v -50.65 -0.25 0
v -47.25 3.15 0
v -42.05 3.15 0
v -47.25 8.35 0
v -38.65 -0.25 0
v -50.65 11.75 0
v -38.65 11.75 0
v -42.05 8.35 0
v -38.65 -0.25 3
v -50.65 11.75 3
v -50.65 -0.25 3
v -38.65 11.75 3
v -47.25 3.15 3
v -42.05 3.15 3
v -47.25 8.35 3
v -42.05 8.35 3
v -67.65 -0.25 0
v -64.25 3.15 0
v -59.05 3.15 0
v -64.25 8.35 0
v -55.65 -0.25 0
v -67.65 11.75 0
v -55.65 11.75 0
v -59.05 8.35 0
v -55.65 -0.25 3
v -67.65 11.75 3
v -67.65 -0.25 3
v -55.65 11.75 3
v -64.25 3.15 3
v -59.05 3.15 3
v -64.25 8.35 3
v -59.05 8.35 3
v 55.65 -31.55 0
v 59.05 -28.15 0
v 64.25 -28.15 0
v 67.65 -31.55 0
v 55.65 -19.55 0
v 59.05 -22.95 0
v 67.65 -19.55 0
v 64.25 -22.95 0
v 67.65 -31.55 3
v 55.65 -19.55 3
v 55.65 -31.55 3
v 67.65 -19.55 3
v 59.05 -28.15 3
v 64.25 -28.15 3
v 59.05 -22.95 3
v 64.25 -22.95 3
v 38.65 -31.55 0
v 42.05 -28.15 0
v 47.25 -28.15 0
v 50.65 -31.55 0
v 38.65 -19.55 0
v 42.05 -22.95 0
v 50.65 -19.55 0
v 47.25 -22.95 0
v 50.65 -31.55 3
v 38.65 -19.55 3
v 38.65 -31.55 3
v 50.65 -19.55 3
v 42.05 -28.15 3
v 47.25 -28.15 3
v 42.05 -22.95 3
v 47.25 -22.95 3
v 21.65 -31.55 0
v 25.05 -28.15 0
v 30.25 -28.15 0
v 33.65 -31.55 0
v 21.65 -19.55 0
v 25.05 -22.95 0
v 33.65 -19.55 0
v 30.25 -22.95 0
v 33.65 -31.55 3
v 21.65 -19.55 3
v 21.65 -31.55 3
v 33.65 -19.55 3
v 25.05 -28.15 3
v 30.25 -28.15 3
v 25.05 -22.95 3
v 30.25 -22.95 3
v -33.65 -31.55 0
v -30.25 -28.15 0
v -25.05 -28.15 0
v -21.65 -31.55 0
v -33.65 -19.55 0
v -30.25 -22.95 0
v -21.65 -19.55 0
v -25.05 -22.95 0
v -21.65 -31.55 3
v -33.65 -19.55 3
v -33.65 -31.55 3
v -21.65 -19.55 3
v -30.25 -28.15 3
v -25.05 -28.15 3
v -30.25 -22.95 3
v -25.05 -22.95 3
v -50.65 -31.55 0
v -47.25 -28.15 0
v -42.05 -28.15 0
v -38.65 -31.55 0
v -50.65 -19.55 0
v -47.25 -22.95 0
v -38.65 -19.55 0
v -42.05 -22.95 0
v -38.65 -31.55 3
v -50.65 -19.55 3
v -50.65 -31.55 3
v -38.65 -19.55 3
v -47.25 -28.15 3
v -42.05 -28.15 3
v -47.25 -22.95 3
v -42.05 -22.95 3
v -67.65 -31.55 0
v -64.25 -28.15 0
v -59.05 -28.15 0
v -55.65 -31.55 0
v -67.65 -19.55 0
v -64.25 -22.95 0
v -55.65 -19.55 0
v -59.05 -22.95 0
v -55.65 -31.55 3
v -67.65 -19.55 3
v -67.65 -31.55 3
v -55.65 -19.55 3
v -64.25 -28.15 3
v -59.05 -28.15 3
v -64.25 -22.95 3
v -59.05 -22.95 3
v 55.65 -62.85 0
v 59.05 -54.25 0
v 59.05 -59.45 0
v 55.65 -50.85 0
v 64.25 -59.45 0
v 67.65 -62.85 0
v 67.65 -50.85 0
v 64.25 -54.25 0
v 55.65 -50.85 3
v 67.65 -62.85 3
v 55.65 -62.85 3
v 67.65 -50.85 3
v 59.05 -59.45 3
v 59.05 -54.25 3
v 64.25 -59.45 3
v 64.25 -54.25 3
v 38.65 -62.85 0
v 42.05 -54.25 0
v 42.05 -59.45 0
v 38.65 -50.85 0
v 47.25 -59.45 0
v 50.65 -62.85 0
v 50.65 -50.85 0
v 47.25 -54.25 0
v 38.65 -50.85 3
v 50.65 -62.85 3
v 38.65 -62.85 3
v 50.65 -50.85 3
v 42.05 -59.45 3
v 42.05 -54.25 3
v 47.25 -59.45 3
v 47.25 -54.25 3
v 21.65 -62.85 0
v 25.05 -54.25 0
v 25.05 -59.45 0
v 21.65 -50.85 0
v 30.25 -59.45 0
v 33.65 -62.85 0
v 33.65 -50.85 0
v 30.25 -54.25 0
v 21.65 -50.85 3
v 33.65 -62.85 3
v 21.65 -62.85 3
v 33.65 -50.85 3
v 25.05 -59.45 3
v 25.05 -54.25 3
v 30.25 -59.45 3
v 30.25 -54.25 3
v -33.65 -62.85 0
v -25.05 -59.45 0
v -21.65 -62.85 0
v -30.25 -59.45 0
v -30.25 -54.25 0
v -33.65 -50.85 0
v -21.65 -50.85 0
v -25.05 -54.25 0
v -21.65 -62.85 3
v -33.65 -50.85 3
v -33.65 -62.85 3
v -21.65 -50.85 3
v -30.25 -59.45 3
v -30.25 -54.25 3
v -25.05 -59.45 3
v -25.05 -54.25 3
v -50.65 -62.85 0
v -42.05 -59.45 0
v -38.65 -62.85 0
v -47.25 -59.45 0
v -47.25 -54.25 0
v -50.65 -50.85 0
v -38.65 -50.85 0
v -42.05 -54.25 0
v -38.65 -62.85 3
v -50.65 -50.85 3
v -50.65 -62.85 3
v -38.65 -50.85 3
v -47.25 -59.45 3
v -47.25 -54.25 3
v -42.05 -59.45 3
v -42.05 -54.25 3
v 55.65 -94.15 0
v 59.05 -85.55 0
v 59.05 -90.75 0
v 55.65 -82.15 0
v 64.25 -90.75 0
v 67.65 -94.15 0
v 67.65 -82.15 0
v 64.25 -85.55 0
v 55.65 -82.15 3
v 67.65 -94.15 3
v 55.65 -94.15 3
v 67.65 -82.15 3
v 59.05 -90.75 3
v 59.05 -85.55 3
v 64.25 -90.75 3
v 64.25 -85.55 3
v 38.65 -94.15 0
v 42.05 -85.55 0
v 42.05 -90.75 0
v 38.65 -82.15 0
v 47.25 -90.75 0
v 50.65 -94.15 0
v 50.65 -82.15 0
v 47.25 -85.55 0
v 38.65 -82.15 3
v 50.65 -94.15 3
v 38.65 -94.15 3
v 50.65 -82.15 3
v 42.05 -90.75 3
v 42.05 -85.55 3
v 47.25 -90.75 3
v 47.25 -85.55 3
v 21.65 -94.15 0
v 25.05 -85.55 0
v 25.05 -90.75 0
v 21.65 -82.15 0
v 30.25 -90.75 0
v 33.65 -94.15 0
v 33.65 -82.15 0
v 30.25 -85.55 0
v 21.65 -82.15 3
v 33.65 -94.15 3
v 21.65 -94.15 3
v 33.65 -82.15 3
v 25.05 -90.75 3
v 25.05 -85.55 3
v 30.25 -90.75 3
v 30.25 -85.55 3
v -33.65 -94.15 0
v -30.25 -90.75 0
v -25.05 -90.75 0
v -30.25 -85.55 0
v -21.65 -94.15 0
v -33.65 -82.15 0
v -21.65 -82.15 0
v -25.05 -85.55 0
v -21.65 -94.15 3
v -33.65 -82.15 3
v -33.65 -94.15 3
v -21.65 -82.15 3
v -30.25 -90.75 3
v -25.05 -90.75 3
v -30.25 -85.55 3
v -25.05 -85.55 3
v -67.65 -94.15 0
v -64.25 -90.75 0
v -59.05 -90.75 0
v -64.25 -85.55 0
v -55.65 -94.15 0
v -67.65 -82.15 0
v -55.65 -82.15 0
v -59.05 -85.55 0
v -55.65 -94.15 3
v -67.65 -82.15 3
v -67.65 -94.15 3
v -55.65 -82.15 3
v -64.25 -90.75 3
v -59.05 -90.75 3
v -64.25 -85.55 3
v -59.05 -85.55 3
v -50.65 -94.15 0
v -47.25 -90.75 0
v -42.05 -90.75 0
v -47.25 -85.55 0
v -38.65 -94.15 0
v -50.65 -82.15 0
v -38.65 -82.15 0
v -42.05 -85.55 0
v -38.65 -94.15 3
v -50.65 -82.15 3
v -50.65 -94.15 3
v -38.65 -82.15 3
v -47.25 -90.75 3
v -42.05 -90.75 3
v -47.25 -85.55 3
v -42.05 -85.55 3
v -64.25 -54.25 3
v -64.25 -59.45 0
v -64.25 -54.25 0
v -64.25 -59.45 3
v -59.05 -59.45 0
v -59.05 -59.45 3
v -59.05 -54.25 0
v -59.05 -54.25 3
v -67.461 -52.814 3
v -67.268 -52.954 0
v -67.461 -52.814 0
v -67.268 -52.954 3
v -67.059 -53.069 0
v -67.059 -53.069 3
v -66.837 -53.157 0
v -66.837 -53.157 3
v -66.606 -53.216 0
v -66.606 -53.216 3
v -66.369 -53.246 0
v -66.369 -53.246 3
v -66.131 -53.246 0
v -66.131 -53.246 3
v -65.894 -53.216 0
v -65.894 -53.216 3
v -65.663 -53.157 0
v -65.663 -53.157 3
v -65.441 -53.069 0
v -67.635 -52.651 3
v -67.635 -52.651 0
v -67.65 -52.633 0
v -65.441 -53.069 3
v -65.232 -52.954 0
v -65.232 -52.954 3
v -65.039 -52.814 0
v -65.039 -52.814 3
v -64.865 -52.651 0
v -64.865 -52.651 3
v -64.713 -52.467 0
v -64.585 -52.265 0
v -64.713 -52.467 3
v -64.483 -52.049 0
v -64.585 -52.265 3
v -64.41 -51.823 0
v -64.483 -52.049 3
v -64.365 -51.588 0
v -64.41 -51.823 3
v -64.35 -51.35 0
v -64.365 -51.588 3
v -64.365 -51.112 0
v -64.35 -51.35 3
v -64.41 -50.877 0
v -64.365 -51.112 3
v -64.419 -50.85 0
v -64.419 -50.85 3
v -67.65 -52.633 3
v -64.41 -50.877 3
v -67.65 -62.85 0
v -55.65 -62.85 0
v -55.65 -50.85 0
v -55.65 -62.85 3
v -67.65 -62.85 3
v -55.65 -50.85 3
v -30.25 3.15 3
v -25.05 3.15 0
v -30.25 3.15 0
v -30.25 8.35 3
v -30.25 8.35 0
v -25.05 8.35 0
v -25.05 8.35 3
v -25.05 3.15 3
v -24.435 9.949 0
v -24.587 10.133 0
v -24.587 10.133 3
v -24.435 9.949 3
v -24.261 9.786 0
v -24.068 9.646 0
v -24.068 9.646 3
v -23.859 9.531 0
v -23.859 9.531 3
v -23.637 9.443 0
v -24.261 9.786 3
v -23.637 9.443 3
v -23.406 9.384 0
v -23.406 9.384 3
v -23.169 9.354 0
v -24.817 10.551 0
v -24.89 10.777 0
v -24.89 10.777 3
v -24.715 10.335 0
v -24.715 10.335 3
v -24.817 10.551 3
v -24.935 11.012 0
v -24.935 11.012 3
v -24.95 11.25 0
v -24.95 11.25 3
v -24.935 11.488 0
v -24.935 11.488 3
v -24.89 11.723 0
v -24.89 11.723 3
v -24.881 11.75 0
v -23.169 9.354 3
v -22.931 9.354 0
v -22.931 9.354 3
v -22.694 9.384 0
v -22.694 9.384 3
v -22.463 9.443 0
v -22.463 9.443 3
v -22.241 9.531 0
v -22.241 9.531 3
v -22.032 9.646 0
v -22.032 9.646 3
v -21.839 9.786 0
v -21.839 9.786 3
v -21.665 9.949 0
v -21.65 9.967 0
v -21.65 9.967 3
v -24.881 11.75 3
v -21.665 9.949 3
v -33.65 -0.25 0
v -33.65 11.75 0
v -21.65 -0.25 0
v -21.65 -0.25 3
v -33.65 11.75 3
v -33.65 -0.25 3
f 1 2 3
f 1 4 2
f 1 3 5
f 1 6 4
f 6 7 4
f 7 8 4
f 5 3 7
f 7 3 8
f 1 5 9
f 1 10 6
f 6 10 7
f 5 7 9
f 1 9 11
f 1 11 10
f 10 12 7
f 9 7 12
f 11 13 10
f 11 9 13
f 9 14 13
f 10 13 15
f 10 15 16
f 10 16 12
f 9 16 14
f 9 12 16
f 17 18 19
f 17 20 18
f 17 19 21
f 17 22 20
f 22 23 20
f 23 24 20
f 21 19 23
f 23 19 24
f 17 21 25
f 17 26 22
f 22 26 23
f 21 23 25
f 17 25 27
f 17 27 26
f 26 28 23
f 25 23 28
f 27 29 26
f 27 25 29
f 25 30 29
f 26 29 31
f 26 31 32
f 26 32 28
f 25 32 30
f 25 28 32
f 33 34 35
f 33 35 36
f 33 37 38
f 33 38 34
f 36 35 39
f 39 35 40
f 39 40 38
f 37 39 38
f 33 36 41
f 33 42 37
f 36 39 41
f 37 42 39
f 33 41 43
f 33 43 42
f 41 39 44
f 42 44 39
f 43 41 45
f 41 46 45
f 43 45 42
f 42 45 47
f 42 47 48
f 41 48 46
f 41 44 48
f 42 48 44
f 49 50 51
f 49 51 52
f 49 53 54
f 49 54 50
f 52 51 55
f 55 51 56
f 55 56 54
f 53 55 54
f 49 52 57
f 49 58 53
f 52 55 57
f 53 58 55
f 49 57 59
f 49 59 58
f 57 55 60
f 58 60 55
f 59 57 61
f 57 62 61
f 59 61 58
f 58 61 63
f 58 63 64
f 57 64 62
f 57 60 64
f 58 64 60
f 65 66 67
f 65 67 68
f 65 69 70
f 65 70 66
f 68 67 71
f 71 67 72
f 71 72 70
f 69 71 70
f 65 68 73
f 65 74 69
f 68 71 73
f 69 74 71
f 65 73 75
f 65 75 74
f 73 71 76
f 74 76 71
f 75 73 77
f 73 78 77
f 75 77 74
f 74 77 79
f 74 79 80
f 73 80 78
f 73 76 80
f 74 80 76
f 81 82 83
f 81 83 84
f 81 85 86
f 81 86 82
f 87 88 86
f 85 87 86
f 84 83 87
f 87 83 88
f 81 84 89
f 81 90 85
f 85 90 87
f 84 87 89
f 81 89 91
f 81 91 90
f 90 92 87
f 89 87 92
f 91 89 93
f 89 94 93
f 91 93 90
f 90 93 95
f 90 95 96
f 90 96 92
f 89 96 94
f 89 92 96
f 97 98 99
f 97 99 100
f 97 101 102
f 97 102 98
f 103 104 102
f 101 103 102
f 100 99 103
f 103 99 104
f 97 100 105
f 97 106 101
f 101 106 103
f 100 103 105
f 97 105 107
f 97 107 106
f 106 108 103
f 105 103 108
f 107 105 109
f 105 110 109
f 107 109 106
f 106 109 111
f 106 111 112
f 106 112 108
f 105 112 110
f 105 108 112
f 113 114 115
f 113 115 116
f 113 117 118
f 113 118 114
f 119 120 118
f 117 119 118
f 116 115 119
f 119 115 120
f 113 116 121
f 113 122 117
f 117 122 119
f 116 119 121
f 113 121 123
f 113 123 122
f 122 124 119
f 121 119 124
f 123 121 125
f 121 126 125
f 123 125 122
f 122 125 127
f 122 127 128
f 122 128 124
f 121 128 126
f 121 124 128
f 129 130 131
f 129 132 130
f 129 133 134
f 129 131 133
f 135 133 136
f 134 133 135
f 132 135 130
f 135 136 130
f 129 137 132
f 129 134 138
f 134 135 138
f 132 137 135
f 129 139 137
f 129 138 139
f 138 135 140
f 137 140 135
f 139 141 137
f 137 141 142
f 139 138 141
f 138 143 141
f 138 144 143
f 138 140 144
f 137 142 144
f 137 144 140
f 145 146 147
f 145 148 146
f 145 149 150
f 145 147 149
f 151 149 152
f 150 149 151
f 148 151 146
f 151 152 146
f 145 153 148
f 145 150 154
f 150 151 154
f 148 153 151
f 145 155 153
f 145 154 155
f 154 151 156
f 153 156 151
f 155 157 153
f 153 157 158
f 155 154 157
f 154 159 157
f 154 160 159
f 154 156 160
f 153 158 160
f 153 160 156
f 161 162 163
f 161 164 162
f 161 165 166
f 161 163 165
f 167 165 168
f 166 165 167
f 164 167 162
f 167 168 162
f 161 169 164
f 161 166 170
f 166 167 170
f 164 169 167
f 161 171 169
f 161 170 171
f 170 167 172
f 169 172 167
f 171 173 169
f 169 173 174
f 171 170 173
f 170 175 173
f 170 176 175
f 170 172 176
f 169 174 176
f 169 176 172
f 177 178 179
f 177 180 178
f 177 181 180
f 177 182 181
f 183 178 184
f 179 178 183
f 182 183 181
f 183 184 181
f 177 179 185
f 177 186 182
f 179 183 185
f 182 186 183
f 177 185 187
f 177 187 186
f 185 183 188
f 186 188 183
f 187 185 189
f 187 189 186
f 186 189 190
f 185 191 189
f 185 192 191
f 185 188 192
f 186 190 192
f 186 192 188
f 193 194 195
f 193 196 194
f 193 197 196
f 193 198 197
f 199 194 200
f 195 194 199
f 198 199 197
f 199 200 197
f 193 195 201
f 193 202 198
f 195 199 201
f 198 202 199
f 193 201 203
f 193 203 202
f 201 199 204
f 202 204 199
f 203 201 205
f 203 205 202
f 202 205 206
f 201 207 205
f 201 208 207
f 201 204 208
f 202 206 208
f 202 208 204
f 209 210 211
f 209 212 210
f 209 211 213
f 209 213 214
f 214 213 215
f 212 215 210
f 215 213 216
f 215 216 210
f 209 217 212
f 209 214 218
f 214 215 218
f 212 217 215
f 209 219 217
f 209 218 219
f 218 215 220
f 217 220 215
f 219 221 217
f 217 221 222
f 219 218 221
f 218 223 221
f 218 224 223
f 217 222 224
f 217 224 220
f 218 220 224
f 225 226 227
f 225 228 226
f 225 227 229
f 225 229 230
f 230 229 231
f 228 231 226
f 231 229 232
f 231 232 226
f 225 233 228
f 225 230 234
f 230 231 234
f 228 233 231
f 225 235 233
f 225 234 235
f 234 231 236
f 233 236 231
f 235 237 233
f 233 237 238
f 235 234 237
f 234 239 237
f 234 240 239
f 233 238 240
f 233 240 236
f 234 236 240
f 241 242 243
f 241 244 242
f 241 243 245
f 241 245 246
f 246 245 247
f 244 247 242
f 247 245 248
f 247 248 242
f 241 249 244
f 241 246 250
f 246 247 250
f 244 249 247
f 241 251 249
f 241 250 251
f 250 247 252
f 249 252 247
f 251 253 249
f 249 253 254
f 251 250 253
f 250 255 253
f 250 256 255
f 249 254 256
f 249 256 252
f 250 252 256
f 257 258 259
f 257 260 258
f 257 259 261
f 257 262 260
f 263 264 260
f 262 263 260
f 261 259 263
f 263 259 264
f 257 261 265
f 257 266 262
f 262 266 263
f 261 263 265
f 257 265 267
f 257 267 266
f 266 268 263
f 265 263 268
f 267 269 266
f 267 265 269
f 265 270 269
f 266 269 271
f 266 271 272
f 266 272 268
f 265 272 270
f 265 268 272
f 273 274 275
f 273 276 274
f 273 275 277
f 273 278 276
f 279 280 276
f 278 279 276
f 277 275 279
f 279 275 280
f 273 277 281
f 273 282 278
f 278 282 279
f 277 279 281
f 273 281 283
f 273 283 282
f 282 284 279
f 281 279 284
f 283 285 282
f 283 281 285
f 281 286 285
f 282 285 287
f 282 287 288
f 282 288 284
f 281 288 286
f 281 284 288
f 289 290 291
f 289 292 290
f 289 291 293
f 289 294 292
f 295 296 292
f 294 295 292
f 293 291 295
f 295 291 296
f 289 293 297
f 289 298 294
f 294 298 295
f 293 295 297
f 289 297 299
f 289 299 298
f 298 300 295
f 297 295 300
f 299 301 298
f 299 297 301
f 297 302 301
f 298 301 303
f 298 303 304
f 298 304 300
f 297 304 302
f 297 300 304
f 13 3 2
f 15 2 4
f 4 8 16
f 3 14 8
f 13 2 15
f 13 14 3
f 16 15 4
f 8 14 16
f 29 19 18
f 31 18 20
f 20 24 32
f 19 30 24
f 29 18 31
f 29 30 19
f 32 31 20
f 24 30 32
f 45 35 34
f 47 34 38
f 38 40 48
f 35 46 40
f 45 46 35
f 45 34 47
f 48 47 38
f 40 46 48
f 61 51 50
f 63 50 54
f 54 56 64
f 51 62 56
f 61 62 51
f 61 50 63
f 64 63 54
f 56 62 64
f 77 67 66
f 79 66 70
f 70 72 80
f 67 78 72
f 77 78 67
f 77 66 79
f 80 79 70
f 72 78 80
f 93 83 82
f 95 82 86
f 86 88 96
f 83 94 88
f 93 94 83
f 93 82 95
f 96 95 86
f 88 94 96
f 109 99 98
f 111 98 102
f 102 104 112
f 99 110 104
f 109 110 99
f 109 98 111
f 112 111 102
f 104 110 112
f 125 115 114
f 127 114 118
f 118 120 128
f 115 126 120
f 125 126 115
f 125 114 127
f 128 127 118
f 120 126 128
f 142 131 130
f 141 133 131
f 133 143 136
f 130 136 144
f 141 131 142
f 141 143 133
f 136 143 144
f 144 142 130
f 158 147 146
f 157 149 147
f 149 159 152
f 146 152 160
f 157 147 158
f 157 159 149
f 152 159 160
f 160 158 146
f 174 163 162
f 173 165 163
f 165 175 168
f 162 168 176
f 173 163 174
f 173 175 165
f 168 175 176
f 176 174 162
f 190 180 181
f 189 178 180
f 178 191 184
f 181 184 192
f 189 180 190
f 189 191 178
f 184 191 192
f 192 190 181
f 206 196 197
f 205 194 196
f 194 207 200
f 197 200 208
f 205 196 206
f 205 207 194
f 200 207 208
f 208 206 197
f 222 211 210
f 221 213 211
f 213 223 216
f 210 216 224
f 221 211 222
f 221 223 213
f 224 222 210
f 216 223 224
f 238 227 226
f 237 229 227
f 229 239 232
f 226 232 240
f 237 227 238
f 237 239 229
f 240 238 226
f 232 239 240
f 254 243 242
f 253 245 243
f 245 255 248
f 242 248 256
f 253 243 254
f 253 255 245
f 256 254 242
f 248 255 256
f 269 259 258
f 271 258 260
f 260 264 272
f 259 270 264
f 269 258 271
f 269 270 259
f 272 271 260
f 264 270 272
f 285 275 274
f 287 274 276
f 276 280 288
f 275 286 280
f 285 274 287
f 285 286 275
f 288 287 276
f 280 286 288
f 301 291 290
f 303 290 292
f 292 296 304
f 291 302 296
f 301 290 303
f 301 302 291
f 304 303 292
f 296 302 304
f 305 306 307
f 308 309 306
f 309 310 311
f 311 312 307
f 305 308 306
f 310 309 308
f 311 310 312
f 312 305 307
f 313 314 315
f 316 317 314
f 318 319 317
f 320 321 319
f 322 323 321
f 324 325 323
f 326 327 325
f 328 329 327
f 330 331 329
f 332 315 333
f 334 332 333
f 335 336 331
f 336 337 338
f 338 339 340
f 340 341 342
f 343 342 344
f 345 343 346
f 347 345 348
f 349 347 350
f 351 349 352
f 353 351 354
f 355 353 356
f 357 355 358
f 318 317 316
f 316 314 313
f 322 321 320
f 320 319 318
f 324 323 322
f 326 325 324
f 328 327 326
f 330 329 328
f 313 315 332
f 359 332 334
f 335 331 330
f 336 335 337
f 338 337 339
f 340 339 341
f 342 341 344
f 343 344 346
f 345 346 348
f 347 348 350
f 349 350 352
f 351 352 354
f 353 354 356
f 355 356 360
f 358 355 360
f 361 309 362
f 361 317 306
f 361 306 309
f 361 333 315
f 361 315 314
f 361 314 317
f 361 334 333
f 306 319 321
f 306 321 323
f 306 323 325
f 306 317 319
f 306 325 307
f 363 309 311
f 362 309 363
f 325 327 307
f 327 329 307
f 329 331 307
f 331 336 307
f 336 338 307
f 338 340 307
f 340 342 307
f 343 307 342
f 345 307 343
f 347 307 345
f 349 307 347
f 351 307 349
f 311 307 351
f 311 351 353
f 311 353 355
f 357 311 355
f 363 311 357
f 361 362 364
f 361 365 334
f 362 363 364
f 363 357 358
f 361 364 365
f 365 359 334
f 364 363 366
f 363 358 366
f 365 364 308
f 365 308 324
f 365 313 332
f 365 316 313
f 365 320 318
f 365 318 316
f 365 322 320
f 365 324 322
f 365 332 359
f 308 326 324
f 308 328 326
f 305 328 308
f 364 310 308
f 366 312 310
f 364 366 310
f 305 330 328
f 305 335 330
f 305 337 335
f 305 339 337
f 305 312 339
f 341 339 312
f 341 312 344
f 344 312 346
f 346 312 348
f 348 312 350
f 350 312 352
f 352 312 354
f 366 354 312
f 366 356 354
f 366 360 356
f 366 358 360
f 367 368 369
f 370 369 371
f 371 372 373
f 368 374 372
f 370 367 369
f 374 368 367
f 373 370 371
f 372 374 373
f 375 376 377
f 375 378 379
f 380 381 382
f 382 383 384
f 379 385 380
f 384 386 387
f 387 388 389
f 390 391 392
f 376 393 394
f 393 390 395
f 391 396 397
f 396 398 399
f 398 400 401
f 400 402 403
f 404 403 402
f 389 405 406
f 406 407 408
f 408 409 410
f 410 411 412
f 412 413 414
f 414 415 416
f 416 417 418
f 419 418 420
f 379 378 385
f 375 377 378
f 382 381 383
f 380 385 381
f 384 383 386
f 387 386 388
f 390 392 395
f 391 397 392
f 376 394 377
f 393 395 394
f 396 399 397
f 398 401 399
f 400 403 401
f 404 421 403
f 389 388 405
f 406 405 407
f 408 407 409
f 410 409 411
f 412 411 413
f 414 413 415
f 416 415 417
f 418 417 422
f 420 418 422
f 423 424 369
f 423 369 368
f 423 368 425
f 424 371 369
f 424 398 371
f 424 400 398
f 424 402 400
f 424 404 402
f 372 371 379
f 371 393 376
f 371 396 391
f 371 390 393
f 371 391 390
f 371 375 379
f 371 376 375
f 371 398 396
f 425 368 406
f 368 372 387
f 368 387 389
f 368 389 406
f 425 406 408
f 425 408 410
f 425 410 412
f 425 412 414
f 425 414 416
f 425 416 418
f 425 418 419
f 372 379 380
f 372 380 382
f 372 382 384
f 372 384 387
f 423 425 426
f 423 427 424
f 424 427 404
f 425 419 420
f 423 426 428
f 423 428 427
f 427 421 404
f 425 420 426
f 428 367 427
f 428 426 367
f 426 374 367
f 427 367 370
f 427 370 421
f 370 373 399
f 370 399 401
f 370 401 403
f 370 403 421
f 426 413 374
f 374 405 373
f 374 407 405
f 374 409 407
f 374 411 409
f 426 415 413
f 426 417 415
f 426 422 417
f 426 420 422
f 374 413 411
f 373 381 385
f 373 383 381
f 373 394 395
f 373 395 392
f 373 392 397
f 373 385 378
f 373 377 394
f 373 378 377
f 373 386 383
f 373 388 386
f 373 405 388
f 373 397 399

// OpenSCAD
$fn = 50;

difference() {
	union() {
		translate(v = [-61.6500000005, -88.15, 0]) {
			rotate(a = [0, 0, 0]) {
				difference() {
					union() {
						translate(v = [-6.0, -6.0, 0]) {
							cube(size = [12.0, 12.0, 3.0]);
						}
					}
					union() {
						translate(v = [-2.6, -2.6, -0.1]) {
							cube(size = [5.2, 5.2, 3.2]);
						}
					}
				}
			}
		}
		translate(v = [-44.6500000005, -88.15, 0]) {
			rotate(a = [0, 0, 0]) {
				difference() {
					union() {
						translate(v = [-6.0, -6.0, 0]) {
							cube(size = [12.0, 12.0, 3.0]);
						}
					}
					union() {
						translate(v = [-2.6, -2.6, -0.1]) {
							cube(size = [5.2, 5.2, 3.2]);
						}
					}
				}
			}
		}
		translate(v = [-27.6500000005, -88.15, 0]) {
			rotate(a = [0, 0, 0]) {
				difference() {
					union() {
						translate(v = [-6.0, -6.0, 0]) {
							cube(size = [12.0, 12.0, 3.0]);
						}
					}
					union() {
						translate(v = [-2.6, -2.6, -0.1]) {
							cube(size = [5.2, 5.2, 3.2]);
						}
					}
				}
			}
		}
		translate(v = [27.649999999499997, -88.15, 0]) {
			rotate(a = [0, 0, 0]) {
				difference() {
					union() {
						translate(v = [-6.0, -6.0, 0]) {
							cube(size = [12.0, 12.0, 3.0]);
						}
					}
					union() {
						translate(v = [-2.6, -2.6, -0.1]) {
							cube(size = [5.2, 5.2, 3.2]);
						}
					}
				}
			}
		}
		translate(v = [44.6499999995, -88.15, 0]) {
			rotate(a = [0, 0, 0]) {
				difference() {
					union() {
						translate(v = [-6.0, -6.0, 0]) {
							cube(size = [12.0, 12.0, 3.0]);
						}
					}
					union() {
						translate(v = [-2.6, -2.6, -0.1]) {
							cube(size = [5.2, 5.2, 3.2]);
						}
					}
				}
			}
		}
		translate(v = [61.6499999995, -88.15, 0]) {
			rotate(a = [0, 0, 0]) {
				difference() {
					union() {
						translate(v = [-6.0, -6.0, 0]) {
							cube(size = [12.0, 12.0, 3.0]);
						}
					}
					union() {
						translate(v = [-2.6, -2.6, -0.1]) {
							cube(size = [5.2, 5.2, 3.2]);
						}
					}
				}
			}
		}
		translate(v = [-61.6500000005, -56.85000000000001, 0]) {
			rotate(a = [0, 0, 0]) {
				difference() {
					union() {
						translate(v = [-6.0, -6.0, 0]) {
							cube(size = [12.0, 12.0, 3.0]);
						}
					}
					union() {
						translate(v = [-2.6, -2.6, -0.1]) {
							cube(size = [5.2, 5.2, 3.2]);
						}
						translate(v = [-4.6, 5.5, -0.1]) {
							cylinder(h = 3.2, r = 1.9000000000000001);
						}
					}
				}
			}
		}
		translate(v = [-44.6500000005, -56.85000000000001, 0]) {
			rotate(a = [0, 0, 0]) {
				difference() {
					union() {
						translate(v = [-6.0, -6.0, 0]) {
							cube(size = [12.0, 12.0, 3.0]);
						}
					}
					union() {
						translate(v = [-2.6, -2.6, -0.1]) {
							cube(size = [5.2, 5.2, 3.2]);
						}
					}
				}
			}
		}
		translate(v = [-27.6500000005, -56.85000000000001, 0]) {
			rotate(a = [0, 0, 0]) {
				difference() {
					union() {
						translate(v = [-6.0, -6.0, 0]) {
							cube(size = [12.0, 12.0, 3.0]);
						}
					}
					union() {
						translate(v = [-2.6, -2.6, -0.1]) {
							cube(size = [5.2, 5.2, 3.2]);
						}
					}
				}
			}
		}
		translate(v = [27.649999999499997, -56.85000000000001, 0]) {
			rotate(a = [0, 0, 0]) {
				difference() {
					union() {
						translate(v = [-6.0, -6.0, 0]) {
							cube(size = [12.0, 12.0, 3.0]);
						}
					}
					union() {
						translate(v = [-2.6, -2.6, -0.1]) {
							cube(size = [5.2, 5.2, 3.2]);
						}
					}
				}
			}
		}
		translate(v = [44.6499999995, -56.85000000000001, 0]) {
			rotate(a = [0, 0, 0]) {
				difference() {
					union() {
						translate(v = [-6.0, -6.0, 0]) {
							cube(size = [12.0, 12.0, 3.0]);
						}
					}
					union() {
						translate(v = [-2.6, -2.6, -0.1]) {
							cube(size = [5.2, 5.2, 3.2]);
						}
					}
				}
			}
		}
		translate(v = [61.6499999995, -56.85000000000001, 0]) {
			rotate(a = [0, 0, 0]) {
				difference() {
					union() {
						translate(v = [-6.0, -6.0, 0]) {
							cube(size = [12.0, 12.0, 3.0]);
						}
					}
					union() {
						translate(v = [-2.6, -2.6, -0.1]) {
							cube(size = [5.2, 5.2, 3.2]);
						}
					}
				}
			}
		}
		translate(v = [-61.6500000005, -25.550000000000004, 0]) {
			rotate(a = [0, 0, 0]) {
				difference() {
					union() {
						translate(v = [-6.0, -6.0, 0]) {
							cube(size = [12.0, 12.0, 3.0]);
						}
					}
					union() {
						translate(v = [-2.6, -2.6, -0.1]) {
							cube(size = [5.2, 5.2, 3.2]);
						}
					}
				}
			}
		}
		translate(v = [-44.6500000005, -25.550000000000004, 0]) {
			rotate(a = [0, 0, 0]) {
				difference() {
					union() {
						translate(v = [-6.0, -6.0, 0]) {
							cube(size = [12.0, 12.0, 3.0]);
						}
					}
					union() {
						translate(v = [-2.6, -2.6, -0.1]) {
							cube(size = [5.2, 5.2, 3.2]);
						}
					}
				}
			}
		}
		translate(v = [-27.6500000005, -25.550000000000004, 0]) {
			rotate(a = [0, 0, 0]) {
				difference() {
					union() {
						translate(v = [-6.0, -6.0, 0]) {
							cube(size = [12.0, 12.0, 3.0]);
						}
					}
					union() {
						translate(v = [-2.6, -2.6, -0.1]) {
							cube(size = [5.2, 5.2, 3.2]);
						}
					}
				}
			}
		}
		translate(v = [27.649999999499997, -25.550000000000004, 0]) {
			rotate(a = [0, 0, 0]) {
				difference() {
					union() {
						translate(v = [-6.0, -6.0, 0]) {
							cube(size = [12.0, 12.0, 3.0]);
						}
					}
					union() {
						translate(v = [-2.6, -2.6, -0.1]) {
							cube(size = [5.2, 5.2, 3.2]);
						}
					}
				}
			}
		}
		translate(v = [44.6499999995, -25.550000000000004, 0]) {
			rotate(a = [0, 0, 0]) {
				difference() {
					union() {
						translate(v = [-6.0, -6.0, 0]) {
							cube(size = [12.0, 12.0, 3.0]);
						}
					}
					union() {
						translate(v = [-2.6, -2.6, -0.1]) {
							cube(size = [5.2, 5.2, 3.2]);
						}
					}
				}
			}
		}
		translate(v = [61.6499999995, -25.550000000000004, 0]) {
			rotate(a = [0, 0, 0]) {
				difference() {
					union() {
						translate(v = [-6.0, -6.0, 0]) {
							cube(size = [12.0, 12.0, 3.0]);
						}
					}
					union() {
						translate(v = [-2.6, -2.6, -0.1]) {
							cube(size = [5.2, 5.2, 3.2]);
						}
					}
				}
			}
		}
		translate(v = [-61.6500000005, 5.75, 0]) {
			rotate(a = [0, 0, 0]) {
				difference() {
					union() {
						translate(v = [-6.0, -6.0, 0]) {
							cube(size = [12.0, 12.0, 3.0]);
						}
					}
					union() {
						translate(v = [-2.6, -2.6, -0.1]) {
							cube(size = [5.2, 5.2, 3.2]);
						}
					}
				}
			}
		}
		translate(v = [-44.6500000005, 5.75, 0]) {
			rotate(a = [0, 0, 0]) {
				difference() {
					union() {
						translate(v = [-6.0, -6.0, 0]) {
							cube(size = [12.0, 12.0, 3.0]);
						}
					}
					union() {
						translate(v = [-2.6, -2.6, -0.1]) {
							cube(size = [5.2, 5.2, 3.2]);
						}
					}
				}
			}
		}
		translate(v = [-27.6500000005, 5.75, 0]) {
			rotate(a = [0, 0, 0]) {
				difference() {
					union() {
						translate(v = [-6.0, -6.0, 0]) {
							cube(size = [12.0, 12.0, 3.0]);
						}
					}
					union() {
						translate(v = [-2.6, -2.6, -0.1]) {
							cube(size = [5.2, 5.2, 3.2]);
						}
						translate(v = [4.6, 5.5, -0.1]) {
							cylinder(h = 3.2, r = 1.9000000000000001);
						}
					}
				}
			}
		}
	}
	union();
}
